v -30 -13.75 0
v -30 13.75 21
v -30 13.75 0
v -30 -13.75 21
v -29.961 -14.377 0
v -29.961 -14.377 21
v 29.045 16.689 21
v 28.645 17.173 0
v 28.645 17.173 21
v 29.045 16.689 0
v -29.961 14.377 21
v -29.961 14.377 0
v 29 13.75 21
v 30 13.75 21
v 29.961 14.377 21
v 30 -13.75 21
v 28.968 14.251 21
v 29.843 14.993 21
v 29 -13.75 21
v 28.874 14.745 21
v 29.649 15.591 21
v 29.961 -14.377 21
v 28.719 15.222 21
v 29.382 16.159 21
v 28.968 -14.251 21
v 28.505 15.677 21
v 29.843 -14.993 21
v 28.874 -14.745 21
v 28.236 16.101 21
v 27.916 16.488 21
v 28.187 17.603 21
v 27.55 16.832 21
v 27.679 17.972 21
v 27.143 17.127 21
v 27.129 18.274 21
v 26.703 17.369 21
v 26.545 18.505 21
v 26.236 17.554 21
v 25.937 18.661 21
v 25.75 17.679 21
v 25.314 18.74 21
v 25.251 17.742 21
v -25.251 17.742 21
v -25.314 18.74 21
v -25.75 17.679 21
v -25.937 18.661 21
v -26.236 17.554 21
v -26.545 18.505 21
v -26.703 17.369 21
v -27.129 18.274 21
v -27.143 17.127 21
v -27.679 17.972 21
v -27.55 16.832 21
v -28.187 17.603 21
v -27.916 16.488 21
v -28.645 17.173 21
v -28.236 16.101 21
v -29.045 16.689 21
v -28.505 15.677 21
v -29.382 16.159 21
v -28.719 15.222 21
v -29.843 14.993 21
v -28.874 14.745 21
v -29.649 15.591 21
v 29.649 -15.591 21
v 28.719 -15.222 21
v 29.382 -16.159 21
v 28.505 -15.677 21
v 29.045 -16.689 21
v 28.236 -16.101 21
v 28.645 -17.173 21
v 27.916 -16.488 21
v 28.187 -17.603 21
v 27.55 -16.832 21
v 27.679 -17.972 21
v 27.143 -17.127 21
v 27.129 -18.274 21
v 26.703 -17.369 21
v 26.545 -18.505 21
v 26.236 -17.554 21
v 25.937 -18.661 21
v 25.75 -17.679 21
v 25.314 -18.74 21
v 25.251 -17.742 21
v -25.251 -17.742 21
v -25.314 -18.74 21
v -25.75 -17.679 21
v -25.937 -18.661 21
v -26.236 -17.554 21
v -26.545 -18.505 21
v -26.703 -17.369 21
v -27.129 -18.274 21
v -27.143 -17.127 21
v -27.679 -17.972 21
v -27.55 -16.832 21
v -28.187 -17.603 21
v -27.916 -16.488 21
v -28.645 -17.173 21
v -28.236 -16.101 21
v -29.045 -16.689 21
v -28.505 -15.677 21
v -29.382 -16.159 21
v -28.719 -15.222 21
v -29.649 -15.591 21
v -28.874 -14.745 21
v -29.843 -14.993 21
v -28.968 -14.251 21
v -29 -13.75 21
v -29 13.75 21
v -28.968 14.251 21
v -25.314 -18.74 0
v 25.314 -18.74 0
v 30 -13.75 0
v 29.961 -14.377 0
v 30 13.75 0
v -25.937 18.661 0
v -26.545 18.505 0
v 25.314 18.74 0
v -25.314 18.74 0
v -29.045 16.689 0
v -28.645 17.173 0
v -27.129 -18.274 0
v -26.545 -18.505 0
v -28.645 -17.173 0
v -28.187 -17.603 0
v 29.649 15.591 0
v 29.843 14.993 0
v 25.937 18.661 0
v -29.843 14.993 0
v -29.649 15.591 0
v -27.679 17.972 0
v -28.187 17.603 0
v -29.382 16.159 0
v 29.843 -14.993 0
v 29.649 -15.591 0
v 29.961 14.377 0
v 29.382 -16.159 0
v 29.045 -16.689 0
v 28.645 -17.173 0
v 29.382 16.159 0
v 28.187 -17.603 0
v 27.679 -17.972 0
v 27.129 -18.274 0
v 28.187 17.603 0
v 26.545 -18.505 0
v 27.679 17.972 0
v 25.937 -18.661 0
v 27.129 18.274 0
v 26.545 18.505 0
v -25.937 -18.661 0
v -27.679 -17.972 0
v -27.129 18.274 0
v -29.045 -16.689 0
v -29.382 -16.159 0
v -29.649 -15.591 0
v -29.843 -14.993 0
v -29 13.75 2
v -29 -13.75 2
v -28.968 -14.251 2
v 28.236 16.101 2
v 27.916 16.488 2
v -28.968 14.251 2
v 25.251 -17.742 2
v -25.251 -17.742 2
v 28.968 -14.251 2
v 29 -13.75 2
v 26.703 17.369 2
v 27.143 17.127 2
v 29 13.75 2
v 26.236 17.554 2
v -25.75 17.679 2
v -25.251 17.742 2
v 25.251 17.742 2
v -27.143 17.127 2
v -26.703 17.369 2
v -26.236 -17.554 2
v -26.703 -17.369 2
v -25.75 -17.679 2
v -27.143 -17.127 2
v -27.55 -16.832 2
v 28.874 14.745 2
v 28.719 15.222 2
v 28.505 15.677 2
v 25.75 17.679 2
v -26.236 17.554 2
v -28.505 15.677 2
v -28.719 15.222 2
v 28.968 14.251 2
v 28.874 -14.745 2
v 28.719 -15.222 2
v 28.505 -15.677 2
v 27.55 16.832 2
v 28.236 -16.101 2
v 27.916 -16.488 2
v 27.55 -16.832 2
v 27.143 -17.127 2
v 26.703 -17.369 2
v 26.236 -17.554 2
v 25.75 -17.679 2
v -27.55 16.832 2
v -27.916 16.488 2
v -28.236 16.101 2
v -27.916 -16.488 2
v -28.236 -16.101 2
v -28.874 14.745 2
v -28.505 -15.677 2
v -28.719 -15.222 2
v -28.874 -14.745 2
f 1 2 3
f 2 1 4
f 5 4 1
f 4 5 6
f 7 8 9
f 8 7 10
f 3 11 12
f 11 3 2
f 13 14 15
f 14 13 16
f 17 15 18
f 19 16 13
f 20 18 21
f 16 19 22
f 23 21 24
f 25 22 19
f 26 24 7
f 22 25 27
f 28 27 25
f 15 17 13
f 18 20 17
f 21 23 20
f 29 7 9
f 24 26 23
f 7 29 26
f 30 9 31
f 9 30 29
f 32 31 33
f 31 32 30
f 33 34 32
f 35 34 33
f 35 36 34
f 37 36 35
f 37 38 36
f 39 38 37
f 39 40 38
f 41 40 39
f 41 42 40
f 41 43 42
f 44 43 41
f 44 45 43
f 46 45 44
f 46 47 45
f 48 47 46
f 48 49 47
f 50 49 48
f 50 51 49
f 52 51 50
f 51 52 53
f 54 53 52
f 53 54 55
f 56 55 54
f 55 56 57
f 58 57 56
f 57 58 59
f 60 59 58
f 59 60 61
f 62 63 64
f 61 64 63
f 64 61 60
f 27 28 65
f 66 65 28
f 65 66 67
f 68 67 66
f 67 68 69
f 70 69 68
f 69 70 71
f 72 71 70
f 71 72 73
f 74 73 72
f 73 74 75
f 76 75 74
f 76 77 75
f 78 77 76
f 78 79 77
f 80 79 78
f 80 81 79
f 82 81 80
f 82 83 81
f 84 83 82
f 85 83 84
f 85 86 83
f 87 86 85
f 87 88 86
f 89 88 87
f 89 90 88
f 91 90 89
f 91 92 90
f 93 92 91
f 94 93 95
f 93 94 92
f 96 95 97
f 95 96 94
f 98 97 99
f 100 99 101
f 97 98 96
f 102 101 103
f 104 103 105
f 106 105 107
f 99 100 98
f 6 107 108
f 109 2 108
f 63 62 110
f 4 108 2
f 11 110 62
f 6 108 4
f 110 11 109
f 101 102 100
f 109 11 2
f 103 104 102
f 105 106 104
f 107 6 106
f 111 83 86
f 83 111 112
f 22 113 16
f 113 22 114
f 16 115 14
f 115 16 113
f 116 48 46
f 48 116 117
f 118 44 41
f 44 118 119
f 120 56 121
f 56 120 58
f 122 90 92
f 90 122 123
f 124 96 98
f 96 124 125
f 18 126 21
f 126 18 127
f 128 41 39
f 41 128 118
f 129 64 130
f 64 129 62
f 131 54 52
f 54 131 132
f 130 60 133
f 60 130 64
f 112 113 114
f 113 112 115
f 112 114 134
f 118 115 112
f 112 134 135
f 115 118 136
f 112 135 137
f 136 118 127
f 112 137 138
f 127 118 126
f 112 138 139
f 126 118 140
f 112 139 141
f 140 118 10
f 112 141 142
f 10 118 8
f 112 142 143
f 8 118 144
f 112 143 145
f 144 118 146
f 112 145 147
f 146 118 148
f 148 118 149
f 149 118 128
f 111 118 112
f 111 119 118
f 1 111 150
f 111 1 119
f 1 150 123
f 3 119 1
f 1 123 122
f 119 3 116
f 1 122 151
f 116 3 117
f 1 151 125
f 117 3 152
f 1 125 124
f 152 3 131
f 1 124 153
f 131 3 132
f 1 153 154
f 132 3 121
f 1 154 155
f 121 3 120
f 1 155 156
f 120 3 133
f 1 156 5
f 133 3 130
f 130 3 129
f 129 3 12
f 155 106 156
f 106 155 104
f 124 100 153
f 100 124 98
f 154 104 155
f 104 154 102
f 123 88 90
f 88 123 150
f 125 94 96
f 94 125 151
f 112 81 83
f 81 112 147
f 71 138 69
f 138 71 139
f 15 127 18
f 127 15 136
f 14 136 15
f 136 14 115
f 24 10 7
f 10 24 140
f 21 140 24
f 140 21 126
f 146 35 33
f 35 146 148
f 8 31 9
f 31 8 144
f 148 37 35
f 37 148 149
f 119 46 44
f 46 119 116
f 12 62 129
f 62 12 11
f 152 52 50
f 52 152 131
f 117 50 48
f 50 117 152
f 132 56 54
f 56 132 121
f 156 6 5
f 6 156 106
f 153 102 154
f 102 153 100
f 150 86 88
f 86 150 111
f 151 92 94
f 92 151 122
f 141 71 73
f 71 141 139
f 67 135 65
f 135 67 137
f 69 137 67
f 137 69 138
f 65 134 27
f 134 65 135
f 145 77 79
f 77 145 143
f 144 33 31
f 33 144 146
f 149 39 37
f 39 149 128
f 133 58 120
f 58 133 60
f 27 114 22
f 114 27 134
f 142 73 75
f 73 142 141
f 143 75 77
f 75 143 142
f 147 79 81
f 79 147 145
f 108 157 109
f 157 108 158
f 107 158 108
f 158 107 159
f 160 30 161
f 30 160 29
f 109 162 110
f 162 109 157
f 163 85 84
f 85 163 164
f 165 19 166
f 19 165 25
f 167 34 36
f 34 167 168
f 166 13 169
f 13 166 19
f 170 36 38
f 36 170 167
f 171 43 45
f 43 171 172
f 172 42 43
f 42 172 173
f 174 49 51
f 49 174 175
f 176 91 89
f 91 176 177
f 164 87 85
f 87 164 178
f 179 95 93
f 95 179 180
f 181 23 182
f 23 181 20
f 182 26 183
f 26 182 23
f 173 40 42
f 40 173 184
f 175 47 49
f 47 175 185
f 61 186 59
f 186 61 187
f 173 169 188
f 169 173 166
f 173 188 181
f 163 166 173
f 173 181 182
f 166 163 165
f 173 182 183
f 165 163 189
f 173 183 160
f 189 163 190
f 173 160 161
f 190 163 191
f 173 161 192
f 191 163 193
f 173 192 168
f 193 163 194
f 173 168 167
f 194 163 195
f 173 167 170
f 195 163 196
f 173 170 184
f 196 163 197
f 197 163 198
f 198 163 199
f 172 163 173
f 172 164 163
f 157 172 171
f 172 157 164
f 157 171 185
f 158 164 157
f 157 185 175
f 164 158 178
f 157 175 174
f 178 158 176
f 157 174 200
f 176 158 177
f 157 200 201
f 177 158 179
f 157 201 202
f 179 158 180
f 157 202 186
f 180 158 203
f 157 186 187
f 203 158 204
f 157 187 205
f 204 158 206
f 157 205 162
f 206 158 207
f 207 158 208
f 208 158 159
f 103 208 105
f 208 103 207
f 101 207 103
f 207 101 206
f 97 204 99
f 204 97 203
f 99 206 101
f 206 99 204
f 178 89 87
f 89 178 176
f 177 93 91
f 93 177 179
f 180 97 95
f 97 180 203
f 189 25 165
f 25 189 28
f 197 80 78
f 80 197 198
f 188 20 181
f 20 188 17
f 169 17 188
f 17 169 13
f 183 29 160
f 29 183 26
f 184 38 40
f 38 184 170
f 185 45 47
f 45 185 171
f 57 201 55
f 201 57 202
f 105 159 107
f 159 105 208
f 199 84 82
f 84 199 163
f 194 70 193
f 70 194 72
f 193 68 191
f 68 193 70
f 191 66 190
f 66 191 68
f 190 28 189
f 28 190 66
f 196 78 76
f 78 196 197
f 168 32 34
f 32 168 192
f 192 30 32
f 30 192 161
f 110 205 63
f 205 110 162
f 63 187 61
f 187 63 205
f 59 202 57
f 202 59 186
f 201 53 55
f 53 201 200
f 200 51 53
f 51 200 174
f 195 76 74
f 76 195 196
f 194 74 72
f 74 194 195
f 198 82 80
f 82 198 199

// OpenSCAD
$fn = 50;


difference() {
	union() {
		hull() {
			translate(v = [-25.0000000000, 13.7500000000, 0]) {
				cylinder(h = 21, r = 5);
			}
			translate(v = [25.0000000000, 13.7500000000, 0]) {
				cylinder(h = 21, r = 5);
			}
			translate(v = [-25.0000000000, -13.7500000000, 0]) {
				cylinder(h = 21, r = 5);
			}
			translate(v = [25.0000000000, -13.7500000000, 0]) {
				cylinder(h = 21, r = 5);
			}
		}
	}
	union() {
		translate(v = [0, 0, 2]) {
			hull() {
				translate(v = [-25.0000000000, 13.7500000000, 0]) {
					cylinder(h = 19, r = 4);
				}
				translate(v = [25.0000000000, 13.7500000000, 0]) {
					cylinder(h = 19, r = 4);
				}
				translate(v = [-25.0000000000, -13.7500000000, 0]) {
					cylinder(h = 19, r = 4);
				}
				translate(v = [25.0000000000, -13.7500000000, 0]) {
					cylinder(h = 19, r = 4);
				}
			}
		}
	}
}
